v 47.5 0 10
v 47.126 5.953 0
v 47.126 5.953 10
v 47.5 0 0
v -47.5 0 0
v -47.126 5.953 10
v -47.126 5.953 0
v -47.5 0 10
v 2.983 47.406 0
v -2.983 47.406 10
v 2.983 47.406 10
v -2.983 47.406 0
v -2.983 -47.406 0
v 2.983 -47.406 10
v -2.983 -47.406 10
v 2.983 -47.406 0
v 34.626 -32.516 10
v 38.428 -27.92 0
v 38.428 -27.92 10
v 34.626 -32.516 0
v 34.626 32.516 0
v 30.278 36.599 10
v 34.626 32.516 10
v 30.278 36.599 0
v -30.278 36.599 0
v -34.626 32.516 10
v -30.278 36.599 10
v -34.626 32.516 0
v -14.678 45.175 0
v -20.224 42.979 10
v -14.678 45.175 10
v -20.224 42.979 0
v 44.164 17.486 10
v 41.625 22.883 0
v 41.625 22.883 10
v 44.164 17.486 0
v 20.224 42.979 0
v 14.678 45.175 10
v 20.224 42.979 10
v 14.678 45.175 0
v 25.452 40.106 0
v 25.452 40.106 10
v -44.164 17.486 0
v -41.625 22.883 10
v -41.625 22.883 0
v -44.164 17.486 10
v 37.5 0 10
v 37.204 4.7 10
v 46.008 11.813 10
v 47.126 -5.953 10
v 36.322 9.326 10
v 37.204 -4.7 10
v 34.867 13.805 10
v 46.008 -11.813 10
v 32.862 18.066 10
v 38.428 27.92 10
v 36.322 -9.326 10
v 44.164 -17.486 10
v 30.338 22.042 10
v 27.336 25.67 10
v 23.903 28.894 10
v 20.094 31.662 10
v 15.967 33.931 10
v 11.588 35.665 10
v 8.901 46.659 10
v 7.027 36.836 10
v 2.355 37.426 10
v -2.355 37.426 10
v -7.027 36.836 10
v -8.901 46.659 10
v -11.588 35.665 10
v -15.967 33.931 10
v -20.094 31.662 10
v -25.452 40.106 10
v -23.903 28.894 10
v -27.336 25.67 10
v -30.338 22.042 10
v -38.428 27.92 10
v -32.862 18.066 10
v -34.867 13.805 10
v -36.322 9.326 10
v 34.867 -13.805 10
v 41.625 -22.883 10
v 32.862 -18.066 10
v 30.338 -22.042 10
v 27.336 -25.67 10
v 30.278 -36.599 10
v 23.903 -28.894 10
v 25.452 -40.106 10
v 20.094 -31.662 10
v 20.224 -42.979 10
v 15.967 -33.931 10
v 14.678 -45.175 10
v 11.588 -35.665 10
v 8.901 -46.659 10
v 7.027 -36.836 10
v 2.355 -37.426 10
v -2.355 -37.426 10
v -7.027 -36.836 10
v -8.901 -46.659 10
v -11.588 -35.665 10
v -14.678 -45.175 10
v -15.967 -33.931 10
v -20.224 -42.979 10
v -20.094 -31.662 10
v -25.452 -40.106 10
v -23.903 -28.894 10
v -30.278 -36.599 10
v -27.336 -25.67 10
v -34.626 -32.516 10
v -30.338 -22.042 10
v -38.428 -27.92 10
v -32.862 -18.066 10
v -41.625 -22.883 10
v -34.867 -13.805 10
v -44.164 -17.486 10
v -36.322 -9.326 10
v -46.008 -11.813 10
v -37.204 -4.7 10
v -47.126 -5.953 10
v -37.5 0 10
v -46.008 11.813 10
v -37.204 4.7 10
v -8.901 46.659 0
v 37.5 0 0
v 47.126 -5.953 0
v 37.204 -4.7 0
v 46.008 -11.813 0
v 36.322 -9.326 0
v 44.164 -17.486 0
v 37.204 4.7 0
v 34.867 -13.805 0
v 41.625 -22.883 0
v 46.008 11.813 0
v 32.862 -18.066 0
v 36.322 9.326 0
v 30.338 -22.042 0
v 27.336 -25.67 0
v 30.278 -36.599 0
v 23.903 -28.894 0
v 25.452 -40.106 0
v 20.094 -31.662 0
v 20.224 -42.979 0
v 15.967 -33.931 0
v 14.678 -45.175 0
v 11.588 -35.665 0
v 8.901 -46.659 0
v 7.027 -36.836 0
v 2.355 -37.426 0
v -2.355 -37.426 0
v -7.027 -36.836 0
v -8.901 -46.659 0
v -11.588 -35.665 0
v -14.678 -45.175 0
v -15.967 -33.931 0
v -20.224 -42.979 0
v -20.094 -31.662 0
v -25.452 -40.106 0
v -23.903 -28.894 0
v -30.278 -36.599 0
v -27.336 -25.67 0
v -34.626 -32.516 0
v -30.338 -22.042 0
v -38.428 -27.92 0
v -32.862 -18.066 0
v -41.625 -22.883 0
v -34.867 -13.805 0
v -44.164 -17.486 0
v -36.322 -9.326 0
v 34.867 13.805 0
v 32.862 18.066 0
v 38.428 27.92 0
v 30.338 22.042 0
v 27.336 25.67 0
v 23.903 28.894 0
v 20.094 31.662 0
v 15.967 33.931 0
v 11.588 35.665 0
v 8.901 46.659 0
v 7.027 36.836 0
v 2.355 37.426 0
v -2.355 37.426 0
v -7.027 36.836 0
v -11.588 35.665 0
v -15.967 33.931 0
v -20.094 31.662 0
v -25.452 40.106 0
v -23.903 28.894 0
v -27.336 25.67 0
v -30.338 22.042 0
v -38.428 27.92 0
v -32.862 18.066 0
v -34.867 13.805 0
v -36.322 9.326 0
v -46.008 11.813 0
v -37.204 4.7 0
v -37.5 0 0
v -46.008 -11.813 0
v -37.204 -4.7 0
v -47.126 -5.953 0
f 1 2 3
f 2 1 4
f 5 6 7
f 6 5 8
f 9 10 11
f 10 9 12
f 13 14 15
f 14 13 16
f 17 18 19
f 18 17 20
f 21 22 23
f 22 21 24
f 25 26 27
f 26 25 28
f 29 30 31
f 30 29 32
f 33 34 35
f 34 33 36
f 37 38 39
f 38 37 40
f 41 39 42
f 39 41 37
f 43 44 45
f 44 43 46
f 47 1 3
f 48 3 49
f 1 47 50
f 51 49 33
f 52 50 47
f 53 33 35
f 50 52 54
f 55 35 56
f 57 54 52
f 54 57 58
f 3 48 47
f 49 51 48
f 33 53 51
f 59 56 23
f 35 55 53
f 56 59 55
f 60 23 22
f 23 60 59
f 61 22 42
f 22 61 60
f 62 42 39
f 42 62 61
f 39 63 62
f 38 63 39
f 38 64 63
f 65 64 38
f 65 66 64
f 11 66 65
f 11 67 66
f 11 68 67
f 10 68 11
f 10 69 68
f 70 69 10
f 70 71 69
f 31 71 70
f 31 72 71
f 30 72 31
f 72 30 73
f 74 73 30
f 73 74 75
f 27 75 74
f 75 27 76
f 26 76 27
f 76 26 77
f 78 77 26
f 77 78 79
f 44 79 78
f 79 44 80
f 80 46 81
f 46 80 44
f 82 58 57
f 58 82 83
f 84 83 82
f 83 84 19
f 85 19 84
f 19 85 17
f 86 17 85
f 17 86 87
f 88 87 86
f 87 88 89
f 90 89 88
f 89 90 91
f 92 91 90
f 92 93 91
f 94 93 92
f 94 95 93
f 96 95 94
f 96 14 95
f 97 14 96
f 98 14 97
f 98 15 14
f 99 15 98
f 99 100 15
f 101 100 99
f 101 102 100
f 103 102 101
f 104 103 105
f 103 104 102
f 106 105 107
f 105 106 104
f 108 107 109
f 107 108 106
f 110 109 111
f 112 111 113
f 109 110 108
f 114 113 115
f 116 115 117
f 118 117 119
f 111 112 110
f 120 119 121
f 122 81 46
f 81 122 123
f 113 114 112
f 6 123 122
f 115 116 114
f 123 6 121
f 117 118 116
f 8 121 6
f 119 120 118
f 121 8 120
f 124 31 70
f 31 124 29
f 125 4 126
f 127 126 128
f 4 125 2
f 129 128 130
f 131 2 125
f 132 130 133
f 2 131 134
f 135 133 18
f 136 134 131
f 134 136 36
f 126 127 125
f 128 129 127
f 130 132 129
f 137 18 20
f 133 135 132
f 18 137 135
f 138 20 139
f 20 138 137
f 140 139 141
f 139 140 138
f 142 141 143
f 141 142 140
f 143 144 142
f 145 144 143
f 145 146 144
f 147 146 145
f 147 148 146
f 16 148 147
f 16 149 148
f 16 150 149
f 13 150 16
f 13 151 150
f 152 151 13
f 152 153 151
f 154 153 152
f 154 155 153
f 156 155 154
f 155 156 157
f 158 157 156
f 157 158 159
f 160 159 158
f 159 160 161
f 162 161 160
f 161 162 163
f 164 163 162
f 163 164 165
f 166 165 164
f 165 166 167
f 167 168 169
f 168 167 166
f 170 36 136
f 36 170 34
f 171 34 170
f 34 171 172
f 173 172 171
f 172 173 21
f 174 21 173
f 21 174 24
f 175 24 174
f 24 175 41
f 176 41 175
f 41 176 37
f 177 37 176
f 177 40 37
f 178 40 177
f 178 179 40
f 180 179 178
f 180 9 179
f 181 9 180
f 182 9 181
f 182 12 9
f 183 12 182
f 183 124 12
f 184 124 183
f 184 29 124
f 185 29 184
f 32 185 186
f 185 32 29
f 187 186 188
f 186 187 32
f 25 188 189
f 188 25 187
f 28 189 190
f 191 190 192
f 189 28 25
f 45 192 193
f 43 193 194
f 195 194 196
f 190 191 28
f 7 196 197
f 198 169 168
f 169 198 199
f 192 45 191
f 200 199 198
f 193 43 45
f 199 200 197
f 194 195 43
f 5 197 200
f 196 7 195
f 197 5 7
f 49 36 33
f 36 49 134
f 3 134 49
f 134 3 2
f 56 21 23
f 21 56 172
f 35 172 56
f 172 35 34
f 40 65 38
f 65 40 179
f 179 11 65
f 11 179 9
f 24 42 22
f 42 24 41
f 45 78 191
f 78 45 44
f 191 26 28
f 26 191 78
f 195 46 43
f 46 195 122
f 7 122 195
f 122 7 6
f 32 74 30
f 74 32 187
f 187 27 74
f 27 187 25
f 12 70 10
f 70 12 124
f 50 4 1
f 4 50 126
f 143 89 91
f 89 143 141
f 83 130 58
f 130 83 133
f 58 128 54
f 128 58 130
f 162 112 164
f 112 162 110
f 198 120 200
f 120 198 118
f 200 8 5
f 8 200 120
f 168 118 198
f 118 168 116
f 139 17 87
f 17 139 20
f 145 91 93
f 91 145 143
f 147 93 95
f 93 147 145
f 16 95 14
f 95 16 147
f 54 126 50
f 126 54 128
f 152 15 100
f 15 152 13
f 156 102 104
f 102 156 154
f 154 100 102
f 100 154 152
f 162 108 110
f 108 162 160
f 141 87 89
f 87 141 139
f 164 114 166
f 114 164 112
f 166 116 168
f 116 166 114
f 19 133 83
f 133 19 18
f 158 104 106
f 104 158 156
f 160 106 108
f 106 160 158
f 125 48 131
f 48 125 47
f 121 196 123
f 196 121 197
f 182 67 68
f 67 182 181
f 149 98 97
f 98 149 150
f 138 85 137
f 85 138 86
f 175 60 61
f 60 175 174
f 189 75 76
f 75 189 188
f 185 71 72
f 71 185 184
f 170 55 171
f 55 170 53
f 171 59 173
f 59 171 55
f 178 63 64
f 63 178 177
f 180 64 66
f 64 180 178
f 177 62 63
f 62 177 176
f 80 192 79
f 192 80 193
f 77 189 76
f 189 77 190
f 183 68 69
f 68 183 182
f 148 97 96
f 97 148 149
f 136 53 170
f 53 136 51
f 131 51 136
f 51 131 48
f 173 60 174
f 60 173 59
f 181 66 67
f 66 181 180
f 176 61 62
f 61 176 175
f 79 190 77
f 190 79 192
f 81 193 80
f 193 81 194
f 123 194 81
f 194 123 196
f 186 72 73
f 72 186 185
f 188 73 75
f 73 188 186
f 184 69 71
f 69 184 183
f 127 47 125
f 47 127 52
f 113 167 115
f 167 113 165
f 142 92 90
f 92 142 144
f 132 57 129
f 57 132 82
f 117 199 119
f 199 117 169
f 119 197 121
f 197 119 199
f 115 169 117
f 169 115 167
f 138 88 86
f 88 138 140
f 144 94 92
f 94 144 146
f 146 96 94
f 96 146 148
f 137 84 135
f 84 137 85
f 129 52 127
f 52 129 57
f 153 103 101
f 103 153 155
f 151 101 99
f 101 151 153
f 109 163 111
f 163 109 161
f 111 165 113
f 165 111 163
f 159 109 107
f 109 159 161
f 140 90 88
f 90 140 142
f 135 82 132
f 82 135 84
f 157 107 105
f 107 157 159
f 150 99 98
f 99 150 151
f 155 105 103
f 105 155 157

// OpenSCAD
$fn = 50;


difference() {
	union() {
		cylinder(h = 10, r = 47.5000000000);
	}
	union() {
		cylinder(h = 10, r = 37.5000000000);
	}
}
